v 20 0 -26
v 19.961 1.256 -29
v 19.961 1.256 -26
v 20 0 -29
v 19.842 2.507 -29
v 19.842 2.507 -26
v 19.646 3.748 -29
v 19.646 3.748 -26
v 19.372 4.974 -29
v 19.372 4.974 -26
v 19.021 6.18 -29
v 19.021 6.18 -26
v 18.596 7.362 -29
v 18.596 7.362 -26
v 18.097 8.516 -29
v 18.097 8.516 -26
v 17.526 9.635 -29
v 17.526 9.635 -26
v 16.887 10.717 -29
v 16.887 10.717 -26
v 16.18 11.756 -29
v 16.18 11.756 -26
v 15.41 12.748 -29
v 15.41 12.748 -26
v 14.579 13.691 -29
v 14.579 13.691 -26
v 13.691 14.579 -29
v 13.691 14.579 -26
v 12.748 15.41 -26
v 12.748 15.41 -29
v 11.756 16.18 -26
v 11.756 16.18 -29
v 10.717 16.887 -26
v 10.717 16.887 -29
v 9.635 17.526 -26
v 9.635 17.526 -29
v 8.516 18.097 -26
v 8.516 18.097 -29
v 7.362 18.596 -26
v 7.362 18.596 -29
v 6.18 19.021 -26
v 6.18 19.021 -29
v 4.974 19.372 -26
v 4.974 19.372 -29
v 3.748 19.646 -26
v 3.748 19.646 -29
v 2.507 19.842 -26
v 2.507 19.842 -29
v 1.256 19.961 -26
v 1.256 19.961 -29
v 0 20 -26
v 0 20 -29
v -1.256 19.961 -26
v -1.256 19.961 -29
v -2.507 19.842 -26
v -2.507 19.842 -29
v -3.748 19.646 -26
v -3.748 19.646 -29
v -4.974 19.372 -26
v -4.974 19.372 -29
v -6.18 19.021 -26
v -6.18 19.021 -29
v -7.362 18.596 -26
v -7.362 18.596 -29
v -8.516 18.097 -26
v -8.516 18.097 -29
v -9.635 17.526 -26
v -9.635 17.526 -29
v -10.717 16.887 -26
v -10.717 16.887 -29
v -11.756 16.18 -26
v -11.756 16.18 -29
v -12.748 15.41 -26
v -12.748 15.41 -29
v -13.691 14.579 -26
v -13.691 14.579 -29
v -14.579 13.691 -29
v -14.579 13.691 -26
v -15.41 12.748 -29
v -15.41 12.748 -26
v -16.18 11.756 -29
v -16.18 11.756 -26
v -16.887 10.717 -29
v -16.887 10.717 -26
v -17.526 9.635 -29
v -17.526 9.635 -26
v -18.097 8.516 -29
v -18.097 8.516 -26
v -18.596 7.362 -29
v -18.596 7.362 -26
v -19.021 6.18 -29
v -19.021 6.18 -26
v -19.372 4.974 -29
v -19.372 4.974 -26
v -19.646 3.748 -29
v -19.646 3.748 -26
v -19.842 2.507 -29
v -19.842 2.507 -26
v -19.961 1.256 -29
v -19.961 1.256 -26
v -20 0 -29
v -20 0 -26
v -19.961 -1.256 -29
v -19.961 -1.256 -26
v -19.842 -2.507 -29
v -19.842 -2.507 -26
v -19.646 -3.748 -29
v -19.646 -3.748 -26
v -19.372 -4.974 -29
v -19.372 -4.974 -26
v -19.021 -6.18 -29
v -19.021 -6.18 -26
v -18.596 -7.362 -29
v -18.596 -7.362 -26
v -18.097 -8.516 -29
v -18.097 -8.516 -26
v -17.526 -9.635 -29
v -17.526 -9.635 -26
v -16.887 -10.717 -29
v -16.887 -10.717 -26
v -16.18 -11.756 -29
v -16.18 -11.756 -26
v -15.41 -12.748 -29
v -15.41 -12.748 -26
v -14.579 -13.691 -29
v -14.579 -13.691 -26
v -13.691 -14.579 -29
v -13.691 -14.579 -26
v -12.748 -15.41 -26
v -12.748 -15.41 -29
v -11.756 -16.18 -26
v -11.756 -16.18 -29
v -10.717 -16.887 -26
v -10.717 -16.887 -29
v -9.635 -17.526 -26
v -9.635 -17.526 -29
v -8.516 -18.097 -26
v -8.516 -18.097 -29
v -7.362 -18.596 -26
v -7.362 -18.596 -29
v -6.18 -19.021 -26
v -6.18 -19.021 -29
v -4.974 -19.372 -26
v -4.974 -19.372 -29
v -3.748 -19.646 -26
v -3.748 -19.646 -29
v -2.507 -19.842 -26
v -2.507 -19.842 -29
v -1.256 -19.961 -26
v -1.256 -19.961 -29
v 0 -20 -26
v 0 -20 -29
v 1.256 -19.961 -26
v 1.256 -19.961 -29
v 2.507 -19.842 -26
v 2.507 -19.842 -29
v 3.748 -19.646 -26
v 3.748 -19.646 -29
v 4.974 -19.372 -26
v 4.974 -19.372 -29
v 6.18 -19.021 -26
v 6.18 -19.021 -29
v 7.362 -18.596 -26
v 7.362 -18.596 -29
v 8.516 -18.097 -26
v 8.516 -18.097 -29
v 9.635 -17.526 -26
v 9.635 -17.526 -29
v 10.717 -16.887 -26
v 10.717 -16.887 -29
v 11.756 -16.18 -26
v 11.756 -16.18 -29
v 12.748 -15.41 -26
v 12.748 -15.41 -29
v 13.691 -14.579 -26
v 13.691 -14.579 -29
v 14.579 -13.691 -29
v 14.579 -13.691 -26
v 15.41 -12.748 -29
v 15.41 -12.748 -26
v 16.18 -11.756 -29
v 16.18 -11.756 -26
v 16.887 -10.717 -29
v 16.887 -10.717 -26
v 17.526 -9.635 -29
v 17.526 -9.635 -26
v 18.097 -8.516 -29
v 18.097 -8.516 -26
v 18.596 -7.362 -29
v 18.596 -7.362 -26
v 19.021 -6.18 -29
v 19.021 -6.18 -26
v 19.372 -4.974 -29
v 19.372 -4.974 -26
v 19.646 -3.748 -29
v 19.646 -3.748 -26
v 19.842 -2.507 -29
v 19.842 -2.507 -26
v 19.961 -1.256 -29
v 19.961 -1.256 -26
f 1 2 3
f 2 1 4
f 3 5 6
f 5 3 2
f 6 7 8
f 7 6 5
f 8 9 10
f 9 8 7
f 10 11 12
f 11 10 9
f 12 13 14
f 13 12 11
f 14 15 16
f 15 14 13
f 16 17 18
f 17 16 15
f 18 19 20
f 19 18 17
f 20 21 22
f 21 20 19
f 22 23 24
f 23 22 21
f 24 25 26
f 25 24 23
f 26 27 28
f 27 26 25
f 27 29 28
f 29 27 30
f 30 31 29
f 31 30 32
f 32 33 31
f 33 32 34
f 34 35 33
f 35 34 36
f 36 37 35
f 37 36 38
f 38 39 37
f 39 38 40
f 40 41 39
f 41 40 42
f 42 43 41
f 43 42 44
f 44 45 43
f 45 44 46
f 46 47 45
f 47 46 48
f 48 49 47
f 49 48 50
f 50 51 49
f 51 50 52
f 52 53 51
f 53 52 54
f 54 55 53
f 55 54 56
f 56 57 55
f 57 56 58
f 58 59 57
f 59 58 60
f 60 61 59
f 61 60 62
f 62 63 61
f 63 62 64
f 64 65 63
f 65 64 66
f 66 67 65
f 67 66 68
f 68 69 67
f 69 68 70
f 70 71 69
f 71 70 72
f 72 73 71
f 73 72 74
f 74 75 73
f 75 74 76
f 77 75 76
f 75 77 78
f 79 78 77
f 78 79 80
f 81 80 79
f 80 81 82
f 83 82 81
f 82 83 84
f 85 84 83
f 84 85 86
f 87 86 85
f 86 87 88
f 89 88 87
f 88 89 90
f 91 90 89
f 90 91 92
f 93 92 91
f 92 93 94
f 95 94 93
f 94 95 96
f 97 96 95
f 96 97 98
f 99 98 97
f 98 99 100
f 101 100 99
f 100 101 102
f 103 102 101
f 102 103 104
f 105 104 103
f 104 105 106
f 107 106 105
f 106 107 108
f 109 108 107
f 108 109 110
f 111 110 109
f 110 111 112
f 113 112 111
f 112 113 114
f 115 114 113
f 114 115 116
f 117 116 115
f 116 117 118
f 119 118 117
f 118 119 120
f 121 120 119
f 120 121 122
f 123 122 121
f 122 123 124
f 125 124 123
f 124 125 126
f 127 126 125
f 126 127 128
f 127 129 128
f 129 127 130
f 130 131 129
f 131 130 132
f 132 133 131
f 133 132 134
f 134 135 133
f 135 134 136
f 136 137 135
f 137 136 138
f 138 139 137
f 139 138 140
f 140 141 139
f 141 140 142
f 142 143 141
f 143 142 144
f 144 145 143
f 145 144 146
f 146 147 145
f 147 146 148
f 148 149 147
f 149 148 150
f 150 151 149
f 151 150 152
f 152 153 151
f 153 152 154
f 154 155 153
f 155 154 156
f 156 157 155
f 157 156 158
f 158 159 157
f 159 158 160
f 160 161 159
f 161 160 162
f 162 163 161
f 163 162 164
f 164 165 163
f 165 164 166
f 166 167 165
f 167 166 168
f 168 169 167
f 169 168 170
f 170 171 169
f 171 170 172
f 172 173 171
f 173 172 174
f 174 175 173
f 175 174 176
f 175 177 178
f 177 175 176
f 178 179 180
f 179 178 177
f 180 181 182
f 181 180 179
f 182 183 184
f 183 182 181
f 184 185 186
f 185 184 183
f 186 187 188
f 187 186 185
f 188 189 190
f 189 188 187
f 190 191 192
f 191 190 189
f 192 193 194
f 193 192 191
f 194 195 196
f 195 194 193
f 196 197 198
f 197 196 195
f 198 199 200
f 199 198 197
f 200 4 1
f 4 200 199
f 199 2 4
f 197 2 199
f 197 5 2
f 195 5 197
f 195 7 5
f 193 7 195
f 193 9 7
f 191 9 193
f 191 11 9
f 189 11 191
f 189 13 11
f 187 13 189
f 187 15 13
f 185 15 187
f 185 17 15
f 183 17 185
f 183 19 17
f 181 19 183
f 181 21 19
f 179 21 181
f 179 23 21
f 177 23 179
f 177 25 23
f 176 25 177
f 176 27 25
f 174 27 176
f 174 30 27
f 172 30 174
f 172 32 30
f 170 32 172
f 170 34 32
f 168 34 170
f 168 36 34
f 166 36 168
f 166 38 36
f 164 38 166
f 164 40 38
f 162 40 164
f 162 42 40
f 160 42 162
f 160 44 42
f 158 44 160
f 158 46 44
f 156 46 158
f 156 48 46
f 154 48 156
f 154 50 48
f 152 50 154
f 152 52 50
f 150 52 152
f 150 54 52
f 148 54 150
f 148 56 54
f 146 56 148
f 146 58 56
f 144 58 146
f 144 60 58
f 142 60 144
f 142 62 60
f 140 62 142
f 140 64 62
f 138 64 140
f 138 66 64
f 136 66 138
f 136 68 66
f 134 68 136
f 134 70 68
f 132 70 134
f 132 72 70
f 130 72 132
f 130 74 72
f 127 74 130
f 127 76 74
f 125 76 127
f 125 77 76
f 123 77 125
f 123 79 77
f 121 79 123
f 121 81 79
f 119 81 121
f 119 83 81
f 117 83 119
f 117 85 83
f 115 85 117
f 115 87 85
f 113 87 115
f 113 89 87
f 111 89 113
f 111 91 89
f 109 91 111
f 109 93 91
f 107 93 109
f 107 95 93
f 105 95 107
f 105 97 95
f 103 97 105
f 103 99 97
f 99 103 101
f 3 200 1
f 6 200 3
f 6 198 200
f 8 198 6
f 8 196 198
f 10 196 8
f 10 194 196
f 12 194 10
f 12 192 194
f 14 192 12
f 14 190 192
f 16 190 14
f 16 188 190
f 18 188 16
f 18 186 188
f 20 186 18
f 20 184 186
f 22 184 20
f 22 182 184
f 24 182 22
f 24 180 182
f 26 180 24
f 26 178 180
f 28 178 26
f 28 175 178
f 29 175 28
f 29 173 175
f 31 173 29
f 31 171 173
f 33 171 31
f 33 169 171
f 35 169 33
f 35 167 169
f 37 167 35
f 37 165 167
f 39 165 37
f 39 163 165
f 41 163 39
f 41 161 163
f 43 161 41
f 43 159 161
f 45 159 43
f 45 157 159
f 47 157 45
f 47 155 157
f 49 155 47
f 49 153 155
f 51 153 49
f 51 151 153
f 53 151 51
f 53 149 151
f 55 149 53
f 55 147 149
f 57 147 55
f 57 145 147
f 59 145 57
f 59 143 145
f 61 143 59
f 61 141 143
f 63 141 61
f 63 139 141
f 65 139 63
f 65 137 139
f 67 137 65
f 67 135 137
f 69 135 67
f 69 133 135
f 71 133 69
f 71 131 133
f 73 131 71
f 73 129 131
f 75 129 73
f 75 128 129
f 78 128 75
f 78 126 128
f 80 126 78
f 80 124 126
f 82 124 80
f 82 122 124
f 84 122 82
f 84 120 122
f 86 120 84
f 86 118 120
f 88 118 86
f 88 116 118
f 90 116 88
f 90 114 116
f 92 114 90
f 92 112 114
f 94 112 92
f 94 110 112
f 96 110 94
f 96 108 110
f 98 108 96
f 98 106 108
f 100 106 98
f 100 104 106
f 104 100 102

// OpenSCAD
 $fn = 100;
 
 difference(){
 translate([0,0,-29])
 cylinder(h = 3, r = 20);
 

   
 }
 
 
 // import("lorenzSM.stl"); 
